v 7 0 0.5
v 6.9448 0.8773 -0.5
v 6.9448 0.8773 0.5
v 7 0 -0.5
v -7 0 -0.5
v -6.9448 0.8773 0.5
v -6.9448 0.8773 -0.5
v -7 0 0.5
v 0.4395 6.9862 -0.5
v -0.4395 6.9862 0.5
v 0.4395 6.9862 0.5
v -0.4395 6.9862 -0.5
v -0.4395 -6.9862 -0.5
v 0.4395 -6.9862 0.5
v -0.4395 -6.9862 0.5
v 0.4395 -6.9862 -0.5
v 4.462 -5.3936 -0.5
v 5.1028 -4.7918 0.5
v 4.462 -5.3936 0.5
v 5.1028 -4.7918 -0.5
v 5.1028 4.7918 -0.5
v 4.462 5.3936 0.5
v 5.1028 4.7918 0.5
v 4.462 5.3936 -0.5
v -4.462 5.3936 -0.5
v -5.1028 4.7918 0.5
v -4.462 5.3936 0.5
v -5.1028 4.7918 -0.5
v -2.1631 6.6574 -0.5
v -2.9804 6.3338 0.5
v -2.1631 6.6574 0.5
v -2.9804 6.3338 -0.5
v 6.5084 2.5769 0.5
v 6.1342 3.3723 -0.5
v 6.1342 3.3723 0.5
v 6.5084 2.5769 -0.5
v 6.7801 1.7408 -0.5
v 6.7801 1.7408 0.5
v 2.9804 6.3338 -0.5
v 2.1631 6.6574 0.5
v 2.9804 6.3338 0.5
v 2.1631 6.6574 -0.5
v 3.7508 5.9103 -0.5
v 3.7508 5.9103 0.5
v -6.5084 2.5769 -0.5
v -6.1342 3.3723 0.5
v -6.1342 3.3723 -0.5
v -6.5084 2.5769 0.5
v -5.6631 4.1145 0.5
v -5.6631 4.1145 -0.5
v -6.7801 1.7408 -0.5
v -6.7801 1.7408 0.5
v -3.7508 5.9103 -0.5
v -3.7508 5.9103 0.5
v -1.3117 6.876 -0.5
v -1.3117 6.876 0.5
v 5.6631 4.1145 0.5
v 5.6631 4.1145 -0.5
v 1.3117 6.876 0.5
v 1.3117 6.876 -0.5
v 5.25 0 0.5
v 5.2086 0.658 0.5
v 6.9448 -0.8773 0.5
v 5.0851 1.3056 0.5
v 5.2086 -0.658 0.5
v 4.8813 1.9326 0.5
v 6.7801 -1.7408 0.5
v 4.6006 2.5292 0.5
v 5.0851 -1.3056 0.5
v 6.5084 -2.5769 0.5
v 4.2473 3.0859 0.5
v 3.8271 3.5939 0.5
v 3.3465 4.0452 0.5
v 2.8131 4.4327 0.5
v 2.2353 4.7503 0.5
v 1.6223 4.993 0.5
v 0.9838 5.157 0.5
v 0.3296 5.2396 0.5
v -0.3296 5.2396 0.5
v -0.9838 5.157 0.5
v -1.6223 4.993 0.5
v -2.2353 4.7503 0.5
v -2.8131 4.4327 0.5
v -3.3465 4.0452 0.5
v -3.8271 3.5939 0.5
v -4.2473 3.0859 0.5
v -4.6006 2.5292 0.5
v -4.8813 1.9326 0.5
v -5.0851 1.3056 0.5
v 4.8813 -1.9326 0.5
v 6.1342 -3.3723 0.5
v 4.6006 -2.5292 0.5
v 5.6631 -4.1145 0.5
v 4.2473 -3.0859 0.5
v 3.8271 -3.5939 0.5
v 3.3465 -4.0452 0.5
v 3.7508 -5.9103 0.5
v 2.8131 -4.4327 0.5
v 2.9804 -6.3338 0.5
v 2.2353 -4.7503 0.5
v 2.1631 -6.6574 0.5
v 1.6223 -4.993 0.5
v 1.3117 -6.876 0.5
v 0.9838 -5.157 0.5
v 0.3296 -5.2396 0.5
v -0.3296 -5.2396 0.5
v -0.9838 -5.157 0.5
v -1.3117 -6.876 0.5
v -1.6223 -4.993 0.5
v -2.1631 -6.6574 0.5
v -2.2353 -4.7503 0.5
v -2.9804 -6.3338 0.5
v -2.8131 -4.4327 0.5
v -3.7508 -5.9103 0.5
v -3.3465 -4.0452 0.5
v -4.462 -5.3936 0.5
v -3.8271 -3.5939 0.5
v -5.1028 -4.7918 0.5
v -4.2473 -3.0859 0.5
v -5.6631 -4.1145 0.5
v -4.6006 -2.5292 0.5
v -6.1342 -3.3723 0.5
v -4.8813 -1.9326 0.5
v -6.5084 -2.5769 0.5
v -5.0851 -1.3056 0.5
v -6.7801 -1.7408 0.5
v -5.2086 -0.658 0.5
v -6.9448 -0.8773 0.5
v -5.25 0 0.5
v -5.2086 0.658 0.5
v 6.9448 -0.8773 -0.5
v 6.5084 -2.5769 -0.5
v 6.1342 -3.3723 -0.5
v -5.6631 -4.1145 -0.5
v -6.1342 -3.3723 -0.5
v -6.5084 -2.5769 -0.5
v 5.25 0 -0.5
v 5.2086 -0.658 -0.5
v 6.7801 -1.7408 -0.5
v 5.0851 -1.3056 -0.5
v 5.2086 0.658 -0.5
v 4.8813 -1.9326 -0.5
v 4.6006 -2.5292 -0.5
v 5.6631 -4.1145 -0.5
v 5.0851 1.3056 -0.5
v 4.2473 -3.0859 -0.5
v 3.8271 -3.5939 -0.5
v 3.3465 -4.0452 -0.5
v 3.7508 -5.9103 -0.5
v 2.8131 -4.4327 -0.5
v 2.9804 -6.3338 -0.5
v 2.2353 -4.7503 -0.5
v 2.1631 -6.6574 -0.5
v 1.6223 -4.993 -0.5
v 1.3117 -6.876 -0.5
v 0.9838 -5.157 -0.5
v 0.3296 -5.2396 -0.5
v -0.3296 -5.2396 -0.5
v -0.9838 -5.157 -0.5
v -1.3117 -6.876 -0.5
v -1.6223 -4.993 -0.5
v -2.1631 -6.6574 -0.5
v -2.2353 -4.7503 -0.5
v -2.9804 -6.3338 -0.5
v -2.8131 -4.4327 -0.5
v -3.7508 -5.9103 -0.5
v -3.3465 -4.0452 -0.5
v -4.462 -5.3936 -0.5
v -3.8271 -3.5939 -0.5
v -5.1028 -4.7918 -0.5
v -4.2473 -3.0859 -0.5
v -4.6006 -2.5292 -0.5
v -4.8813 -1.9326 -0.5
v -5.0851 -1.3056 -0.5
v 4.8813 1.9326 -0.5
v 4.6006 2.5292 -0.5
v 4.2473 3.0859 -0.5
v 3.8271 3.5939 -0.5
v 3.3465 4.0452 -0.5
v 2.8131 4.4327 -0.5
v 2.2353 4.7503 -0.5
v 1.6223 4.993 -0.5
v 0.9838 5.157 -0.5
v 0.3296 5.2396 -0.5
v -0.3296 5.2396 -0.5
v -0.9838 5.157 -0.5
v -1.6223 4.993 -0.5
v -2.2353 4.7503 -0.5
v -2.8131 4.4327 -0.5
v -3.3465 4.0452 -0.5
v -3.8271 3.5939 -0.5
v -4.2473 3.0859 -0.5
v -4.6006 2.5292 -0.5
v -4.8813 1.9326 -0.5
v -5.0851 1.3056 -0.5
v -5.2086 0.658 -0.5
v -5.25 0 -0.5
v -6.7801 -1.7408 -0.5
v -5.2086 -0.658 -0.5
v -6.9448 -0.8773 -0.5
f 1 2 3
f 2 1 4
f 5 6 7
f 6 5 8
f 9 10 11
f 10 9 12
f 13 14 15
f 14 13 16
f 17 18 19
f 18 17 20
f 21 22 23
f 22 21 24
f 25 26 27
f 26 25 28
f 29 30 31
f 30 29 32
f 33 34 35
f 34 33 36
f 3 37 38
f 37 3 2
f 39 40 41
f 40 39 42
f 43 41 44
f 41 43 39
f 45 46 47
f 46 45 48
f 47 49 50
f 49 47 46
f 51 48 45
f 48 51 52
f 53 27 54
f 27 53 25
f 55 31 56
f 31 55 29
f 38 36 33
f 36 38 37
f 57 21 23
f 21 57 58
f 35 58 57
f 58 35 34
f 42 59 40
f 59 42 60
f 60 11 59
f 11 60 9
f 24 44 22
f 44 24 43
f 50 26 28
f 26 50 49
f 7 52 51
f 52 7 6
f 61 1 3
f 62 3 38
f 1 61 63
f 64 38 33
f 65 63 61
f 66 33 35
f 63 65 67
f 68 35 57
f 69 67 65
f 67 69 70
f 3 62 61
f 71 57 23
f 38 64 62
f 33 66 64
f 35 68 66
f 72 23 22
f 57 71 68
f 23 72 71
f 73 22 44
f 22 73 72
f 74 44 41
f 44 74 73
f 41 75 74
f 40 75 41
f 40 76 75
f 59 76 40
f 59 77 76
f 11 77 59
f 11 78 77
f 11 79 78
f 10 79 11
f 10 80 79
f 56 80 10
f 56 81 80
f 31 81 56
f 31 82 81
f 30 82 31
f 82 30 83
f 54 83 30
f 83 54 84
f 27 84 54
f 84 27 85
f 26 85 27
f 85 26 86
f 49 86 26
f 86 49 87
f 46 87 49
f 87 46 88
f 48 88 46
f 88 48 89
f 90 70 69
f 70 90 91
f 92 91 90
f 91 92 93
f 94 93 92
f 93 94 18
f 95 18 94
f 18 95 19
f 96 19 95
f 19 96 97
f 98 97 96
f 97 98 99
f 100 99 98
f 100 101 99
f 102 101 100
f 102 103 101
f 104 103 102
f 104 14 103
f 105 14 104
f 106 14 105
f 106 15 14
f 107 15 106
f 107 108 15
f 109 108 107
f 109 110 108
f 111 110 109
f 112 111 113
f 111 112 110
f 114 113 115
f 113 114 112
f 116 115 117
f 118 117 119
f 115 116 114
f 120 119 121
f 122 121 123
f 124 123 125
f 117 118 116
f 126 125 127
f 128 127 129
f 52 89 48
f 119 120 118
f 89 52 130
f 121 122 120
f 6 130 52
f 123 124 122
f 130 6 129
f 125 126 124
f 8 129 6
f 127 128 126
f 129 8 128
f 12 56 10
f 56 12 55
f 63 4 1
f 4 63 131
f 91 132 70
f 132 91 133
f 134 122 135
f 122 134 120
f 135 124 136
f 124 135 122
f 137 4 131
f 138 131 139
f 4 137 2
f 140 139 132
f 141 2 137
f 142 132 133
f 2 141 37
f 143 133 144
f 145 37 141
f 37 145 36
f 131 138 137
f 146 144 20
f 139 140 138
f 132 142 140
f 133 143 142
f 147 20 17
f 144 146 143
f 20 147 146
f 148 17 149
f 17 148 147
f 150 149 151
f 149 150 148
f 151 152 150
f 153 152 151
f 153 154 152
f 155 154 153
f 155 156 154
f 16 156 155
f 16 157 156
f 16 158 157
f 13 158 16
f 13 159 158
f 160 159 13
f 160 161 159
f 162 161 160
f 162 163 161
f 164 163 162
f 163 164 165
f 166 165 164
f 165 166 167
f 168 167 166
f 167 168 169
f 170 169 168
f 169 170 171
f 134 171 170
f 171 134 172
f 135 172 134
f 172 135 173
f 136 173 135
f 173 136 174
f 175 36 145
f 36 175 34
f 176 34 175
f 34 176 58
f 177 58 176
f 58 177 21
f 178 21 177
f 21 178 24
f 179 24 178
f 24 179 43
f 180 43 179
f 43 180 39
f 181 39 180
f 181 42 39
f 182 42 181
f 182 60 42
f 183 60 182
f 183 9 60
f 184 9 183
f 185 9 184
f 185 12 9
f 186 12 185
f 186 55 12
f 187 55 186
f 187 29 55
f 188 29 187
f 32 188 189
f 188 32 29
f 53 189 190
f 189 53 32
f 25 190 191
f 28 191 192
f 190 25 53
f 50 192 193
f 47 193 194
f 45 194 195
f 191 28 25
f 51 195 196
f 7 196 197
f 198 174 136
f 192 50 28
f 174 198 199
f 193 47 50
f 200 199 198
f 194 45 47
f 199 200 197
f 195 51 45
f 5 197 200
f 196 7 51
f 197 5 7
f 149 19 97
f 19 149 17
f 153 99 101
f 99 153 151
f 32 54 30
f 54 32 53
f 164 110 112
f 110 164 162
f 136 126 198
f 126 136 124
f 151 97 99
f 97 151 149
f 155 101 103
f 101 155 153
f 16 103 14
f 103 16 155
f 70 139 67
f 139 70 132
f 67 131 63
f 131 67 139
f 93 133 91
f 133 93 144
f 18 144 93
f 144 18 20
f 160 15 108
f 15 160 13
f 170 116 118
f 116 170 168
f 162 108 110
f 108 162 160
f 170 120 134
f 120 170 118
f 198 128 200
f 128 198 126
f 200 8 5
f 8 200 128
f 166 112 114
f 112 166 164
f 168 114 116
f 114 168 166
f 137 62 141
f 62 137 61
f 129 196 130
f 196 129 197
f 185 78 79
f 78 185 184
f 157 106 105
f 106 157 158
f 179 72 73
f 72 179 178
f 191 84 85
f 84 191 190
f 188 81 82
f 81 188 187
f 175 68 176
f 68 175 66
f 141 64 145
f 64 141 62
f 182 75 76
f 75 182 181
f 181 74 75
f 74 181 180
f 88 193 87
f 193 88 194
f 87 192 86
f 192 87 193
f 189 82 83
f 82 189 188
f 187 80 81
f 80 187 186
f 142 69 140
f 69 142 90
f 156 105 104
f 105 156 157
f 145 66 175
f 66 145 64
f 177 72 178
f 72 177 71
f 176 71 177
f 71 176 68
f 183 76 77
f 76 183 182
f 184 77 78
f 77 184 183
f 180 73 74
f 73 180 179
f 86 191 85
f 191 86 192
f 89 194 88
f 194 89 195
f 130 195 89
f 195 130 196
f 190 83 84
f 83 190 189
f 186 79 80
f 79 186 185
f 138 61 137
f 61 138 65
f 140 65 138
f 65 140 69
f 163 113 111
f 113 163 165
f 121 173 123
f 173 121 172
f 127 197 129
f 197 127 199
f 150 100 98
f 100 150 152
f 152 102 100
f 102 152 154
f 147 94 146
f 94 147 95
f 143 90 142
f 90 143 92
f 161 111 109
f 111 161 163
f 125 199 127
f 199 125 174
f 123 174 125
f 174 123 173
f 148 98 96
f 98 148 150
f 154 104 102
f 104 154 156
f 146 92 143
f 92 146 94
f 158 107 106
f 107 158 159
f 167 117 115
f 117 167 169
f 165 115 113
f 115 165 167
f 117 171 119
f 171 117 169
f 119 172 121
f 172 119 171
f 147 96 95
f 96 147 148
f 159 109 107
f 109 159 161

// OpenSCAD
$fn = 50;


difference() {
	union() {
		translate(v = [0, 0, -0.5000000000]) {
			cylinder(h = 1, r = 7.0000000000);
		}
	}
	union() {
		translate(v = [0, 0, -100.0000000000]) {
			cylinder(h = 200, r = 5.2500000000);
		}
	}
}
